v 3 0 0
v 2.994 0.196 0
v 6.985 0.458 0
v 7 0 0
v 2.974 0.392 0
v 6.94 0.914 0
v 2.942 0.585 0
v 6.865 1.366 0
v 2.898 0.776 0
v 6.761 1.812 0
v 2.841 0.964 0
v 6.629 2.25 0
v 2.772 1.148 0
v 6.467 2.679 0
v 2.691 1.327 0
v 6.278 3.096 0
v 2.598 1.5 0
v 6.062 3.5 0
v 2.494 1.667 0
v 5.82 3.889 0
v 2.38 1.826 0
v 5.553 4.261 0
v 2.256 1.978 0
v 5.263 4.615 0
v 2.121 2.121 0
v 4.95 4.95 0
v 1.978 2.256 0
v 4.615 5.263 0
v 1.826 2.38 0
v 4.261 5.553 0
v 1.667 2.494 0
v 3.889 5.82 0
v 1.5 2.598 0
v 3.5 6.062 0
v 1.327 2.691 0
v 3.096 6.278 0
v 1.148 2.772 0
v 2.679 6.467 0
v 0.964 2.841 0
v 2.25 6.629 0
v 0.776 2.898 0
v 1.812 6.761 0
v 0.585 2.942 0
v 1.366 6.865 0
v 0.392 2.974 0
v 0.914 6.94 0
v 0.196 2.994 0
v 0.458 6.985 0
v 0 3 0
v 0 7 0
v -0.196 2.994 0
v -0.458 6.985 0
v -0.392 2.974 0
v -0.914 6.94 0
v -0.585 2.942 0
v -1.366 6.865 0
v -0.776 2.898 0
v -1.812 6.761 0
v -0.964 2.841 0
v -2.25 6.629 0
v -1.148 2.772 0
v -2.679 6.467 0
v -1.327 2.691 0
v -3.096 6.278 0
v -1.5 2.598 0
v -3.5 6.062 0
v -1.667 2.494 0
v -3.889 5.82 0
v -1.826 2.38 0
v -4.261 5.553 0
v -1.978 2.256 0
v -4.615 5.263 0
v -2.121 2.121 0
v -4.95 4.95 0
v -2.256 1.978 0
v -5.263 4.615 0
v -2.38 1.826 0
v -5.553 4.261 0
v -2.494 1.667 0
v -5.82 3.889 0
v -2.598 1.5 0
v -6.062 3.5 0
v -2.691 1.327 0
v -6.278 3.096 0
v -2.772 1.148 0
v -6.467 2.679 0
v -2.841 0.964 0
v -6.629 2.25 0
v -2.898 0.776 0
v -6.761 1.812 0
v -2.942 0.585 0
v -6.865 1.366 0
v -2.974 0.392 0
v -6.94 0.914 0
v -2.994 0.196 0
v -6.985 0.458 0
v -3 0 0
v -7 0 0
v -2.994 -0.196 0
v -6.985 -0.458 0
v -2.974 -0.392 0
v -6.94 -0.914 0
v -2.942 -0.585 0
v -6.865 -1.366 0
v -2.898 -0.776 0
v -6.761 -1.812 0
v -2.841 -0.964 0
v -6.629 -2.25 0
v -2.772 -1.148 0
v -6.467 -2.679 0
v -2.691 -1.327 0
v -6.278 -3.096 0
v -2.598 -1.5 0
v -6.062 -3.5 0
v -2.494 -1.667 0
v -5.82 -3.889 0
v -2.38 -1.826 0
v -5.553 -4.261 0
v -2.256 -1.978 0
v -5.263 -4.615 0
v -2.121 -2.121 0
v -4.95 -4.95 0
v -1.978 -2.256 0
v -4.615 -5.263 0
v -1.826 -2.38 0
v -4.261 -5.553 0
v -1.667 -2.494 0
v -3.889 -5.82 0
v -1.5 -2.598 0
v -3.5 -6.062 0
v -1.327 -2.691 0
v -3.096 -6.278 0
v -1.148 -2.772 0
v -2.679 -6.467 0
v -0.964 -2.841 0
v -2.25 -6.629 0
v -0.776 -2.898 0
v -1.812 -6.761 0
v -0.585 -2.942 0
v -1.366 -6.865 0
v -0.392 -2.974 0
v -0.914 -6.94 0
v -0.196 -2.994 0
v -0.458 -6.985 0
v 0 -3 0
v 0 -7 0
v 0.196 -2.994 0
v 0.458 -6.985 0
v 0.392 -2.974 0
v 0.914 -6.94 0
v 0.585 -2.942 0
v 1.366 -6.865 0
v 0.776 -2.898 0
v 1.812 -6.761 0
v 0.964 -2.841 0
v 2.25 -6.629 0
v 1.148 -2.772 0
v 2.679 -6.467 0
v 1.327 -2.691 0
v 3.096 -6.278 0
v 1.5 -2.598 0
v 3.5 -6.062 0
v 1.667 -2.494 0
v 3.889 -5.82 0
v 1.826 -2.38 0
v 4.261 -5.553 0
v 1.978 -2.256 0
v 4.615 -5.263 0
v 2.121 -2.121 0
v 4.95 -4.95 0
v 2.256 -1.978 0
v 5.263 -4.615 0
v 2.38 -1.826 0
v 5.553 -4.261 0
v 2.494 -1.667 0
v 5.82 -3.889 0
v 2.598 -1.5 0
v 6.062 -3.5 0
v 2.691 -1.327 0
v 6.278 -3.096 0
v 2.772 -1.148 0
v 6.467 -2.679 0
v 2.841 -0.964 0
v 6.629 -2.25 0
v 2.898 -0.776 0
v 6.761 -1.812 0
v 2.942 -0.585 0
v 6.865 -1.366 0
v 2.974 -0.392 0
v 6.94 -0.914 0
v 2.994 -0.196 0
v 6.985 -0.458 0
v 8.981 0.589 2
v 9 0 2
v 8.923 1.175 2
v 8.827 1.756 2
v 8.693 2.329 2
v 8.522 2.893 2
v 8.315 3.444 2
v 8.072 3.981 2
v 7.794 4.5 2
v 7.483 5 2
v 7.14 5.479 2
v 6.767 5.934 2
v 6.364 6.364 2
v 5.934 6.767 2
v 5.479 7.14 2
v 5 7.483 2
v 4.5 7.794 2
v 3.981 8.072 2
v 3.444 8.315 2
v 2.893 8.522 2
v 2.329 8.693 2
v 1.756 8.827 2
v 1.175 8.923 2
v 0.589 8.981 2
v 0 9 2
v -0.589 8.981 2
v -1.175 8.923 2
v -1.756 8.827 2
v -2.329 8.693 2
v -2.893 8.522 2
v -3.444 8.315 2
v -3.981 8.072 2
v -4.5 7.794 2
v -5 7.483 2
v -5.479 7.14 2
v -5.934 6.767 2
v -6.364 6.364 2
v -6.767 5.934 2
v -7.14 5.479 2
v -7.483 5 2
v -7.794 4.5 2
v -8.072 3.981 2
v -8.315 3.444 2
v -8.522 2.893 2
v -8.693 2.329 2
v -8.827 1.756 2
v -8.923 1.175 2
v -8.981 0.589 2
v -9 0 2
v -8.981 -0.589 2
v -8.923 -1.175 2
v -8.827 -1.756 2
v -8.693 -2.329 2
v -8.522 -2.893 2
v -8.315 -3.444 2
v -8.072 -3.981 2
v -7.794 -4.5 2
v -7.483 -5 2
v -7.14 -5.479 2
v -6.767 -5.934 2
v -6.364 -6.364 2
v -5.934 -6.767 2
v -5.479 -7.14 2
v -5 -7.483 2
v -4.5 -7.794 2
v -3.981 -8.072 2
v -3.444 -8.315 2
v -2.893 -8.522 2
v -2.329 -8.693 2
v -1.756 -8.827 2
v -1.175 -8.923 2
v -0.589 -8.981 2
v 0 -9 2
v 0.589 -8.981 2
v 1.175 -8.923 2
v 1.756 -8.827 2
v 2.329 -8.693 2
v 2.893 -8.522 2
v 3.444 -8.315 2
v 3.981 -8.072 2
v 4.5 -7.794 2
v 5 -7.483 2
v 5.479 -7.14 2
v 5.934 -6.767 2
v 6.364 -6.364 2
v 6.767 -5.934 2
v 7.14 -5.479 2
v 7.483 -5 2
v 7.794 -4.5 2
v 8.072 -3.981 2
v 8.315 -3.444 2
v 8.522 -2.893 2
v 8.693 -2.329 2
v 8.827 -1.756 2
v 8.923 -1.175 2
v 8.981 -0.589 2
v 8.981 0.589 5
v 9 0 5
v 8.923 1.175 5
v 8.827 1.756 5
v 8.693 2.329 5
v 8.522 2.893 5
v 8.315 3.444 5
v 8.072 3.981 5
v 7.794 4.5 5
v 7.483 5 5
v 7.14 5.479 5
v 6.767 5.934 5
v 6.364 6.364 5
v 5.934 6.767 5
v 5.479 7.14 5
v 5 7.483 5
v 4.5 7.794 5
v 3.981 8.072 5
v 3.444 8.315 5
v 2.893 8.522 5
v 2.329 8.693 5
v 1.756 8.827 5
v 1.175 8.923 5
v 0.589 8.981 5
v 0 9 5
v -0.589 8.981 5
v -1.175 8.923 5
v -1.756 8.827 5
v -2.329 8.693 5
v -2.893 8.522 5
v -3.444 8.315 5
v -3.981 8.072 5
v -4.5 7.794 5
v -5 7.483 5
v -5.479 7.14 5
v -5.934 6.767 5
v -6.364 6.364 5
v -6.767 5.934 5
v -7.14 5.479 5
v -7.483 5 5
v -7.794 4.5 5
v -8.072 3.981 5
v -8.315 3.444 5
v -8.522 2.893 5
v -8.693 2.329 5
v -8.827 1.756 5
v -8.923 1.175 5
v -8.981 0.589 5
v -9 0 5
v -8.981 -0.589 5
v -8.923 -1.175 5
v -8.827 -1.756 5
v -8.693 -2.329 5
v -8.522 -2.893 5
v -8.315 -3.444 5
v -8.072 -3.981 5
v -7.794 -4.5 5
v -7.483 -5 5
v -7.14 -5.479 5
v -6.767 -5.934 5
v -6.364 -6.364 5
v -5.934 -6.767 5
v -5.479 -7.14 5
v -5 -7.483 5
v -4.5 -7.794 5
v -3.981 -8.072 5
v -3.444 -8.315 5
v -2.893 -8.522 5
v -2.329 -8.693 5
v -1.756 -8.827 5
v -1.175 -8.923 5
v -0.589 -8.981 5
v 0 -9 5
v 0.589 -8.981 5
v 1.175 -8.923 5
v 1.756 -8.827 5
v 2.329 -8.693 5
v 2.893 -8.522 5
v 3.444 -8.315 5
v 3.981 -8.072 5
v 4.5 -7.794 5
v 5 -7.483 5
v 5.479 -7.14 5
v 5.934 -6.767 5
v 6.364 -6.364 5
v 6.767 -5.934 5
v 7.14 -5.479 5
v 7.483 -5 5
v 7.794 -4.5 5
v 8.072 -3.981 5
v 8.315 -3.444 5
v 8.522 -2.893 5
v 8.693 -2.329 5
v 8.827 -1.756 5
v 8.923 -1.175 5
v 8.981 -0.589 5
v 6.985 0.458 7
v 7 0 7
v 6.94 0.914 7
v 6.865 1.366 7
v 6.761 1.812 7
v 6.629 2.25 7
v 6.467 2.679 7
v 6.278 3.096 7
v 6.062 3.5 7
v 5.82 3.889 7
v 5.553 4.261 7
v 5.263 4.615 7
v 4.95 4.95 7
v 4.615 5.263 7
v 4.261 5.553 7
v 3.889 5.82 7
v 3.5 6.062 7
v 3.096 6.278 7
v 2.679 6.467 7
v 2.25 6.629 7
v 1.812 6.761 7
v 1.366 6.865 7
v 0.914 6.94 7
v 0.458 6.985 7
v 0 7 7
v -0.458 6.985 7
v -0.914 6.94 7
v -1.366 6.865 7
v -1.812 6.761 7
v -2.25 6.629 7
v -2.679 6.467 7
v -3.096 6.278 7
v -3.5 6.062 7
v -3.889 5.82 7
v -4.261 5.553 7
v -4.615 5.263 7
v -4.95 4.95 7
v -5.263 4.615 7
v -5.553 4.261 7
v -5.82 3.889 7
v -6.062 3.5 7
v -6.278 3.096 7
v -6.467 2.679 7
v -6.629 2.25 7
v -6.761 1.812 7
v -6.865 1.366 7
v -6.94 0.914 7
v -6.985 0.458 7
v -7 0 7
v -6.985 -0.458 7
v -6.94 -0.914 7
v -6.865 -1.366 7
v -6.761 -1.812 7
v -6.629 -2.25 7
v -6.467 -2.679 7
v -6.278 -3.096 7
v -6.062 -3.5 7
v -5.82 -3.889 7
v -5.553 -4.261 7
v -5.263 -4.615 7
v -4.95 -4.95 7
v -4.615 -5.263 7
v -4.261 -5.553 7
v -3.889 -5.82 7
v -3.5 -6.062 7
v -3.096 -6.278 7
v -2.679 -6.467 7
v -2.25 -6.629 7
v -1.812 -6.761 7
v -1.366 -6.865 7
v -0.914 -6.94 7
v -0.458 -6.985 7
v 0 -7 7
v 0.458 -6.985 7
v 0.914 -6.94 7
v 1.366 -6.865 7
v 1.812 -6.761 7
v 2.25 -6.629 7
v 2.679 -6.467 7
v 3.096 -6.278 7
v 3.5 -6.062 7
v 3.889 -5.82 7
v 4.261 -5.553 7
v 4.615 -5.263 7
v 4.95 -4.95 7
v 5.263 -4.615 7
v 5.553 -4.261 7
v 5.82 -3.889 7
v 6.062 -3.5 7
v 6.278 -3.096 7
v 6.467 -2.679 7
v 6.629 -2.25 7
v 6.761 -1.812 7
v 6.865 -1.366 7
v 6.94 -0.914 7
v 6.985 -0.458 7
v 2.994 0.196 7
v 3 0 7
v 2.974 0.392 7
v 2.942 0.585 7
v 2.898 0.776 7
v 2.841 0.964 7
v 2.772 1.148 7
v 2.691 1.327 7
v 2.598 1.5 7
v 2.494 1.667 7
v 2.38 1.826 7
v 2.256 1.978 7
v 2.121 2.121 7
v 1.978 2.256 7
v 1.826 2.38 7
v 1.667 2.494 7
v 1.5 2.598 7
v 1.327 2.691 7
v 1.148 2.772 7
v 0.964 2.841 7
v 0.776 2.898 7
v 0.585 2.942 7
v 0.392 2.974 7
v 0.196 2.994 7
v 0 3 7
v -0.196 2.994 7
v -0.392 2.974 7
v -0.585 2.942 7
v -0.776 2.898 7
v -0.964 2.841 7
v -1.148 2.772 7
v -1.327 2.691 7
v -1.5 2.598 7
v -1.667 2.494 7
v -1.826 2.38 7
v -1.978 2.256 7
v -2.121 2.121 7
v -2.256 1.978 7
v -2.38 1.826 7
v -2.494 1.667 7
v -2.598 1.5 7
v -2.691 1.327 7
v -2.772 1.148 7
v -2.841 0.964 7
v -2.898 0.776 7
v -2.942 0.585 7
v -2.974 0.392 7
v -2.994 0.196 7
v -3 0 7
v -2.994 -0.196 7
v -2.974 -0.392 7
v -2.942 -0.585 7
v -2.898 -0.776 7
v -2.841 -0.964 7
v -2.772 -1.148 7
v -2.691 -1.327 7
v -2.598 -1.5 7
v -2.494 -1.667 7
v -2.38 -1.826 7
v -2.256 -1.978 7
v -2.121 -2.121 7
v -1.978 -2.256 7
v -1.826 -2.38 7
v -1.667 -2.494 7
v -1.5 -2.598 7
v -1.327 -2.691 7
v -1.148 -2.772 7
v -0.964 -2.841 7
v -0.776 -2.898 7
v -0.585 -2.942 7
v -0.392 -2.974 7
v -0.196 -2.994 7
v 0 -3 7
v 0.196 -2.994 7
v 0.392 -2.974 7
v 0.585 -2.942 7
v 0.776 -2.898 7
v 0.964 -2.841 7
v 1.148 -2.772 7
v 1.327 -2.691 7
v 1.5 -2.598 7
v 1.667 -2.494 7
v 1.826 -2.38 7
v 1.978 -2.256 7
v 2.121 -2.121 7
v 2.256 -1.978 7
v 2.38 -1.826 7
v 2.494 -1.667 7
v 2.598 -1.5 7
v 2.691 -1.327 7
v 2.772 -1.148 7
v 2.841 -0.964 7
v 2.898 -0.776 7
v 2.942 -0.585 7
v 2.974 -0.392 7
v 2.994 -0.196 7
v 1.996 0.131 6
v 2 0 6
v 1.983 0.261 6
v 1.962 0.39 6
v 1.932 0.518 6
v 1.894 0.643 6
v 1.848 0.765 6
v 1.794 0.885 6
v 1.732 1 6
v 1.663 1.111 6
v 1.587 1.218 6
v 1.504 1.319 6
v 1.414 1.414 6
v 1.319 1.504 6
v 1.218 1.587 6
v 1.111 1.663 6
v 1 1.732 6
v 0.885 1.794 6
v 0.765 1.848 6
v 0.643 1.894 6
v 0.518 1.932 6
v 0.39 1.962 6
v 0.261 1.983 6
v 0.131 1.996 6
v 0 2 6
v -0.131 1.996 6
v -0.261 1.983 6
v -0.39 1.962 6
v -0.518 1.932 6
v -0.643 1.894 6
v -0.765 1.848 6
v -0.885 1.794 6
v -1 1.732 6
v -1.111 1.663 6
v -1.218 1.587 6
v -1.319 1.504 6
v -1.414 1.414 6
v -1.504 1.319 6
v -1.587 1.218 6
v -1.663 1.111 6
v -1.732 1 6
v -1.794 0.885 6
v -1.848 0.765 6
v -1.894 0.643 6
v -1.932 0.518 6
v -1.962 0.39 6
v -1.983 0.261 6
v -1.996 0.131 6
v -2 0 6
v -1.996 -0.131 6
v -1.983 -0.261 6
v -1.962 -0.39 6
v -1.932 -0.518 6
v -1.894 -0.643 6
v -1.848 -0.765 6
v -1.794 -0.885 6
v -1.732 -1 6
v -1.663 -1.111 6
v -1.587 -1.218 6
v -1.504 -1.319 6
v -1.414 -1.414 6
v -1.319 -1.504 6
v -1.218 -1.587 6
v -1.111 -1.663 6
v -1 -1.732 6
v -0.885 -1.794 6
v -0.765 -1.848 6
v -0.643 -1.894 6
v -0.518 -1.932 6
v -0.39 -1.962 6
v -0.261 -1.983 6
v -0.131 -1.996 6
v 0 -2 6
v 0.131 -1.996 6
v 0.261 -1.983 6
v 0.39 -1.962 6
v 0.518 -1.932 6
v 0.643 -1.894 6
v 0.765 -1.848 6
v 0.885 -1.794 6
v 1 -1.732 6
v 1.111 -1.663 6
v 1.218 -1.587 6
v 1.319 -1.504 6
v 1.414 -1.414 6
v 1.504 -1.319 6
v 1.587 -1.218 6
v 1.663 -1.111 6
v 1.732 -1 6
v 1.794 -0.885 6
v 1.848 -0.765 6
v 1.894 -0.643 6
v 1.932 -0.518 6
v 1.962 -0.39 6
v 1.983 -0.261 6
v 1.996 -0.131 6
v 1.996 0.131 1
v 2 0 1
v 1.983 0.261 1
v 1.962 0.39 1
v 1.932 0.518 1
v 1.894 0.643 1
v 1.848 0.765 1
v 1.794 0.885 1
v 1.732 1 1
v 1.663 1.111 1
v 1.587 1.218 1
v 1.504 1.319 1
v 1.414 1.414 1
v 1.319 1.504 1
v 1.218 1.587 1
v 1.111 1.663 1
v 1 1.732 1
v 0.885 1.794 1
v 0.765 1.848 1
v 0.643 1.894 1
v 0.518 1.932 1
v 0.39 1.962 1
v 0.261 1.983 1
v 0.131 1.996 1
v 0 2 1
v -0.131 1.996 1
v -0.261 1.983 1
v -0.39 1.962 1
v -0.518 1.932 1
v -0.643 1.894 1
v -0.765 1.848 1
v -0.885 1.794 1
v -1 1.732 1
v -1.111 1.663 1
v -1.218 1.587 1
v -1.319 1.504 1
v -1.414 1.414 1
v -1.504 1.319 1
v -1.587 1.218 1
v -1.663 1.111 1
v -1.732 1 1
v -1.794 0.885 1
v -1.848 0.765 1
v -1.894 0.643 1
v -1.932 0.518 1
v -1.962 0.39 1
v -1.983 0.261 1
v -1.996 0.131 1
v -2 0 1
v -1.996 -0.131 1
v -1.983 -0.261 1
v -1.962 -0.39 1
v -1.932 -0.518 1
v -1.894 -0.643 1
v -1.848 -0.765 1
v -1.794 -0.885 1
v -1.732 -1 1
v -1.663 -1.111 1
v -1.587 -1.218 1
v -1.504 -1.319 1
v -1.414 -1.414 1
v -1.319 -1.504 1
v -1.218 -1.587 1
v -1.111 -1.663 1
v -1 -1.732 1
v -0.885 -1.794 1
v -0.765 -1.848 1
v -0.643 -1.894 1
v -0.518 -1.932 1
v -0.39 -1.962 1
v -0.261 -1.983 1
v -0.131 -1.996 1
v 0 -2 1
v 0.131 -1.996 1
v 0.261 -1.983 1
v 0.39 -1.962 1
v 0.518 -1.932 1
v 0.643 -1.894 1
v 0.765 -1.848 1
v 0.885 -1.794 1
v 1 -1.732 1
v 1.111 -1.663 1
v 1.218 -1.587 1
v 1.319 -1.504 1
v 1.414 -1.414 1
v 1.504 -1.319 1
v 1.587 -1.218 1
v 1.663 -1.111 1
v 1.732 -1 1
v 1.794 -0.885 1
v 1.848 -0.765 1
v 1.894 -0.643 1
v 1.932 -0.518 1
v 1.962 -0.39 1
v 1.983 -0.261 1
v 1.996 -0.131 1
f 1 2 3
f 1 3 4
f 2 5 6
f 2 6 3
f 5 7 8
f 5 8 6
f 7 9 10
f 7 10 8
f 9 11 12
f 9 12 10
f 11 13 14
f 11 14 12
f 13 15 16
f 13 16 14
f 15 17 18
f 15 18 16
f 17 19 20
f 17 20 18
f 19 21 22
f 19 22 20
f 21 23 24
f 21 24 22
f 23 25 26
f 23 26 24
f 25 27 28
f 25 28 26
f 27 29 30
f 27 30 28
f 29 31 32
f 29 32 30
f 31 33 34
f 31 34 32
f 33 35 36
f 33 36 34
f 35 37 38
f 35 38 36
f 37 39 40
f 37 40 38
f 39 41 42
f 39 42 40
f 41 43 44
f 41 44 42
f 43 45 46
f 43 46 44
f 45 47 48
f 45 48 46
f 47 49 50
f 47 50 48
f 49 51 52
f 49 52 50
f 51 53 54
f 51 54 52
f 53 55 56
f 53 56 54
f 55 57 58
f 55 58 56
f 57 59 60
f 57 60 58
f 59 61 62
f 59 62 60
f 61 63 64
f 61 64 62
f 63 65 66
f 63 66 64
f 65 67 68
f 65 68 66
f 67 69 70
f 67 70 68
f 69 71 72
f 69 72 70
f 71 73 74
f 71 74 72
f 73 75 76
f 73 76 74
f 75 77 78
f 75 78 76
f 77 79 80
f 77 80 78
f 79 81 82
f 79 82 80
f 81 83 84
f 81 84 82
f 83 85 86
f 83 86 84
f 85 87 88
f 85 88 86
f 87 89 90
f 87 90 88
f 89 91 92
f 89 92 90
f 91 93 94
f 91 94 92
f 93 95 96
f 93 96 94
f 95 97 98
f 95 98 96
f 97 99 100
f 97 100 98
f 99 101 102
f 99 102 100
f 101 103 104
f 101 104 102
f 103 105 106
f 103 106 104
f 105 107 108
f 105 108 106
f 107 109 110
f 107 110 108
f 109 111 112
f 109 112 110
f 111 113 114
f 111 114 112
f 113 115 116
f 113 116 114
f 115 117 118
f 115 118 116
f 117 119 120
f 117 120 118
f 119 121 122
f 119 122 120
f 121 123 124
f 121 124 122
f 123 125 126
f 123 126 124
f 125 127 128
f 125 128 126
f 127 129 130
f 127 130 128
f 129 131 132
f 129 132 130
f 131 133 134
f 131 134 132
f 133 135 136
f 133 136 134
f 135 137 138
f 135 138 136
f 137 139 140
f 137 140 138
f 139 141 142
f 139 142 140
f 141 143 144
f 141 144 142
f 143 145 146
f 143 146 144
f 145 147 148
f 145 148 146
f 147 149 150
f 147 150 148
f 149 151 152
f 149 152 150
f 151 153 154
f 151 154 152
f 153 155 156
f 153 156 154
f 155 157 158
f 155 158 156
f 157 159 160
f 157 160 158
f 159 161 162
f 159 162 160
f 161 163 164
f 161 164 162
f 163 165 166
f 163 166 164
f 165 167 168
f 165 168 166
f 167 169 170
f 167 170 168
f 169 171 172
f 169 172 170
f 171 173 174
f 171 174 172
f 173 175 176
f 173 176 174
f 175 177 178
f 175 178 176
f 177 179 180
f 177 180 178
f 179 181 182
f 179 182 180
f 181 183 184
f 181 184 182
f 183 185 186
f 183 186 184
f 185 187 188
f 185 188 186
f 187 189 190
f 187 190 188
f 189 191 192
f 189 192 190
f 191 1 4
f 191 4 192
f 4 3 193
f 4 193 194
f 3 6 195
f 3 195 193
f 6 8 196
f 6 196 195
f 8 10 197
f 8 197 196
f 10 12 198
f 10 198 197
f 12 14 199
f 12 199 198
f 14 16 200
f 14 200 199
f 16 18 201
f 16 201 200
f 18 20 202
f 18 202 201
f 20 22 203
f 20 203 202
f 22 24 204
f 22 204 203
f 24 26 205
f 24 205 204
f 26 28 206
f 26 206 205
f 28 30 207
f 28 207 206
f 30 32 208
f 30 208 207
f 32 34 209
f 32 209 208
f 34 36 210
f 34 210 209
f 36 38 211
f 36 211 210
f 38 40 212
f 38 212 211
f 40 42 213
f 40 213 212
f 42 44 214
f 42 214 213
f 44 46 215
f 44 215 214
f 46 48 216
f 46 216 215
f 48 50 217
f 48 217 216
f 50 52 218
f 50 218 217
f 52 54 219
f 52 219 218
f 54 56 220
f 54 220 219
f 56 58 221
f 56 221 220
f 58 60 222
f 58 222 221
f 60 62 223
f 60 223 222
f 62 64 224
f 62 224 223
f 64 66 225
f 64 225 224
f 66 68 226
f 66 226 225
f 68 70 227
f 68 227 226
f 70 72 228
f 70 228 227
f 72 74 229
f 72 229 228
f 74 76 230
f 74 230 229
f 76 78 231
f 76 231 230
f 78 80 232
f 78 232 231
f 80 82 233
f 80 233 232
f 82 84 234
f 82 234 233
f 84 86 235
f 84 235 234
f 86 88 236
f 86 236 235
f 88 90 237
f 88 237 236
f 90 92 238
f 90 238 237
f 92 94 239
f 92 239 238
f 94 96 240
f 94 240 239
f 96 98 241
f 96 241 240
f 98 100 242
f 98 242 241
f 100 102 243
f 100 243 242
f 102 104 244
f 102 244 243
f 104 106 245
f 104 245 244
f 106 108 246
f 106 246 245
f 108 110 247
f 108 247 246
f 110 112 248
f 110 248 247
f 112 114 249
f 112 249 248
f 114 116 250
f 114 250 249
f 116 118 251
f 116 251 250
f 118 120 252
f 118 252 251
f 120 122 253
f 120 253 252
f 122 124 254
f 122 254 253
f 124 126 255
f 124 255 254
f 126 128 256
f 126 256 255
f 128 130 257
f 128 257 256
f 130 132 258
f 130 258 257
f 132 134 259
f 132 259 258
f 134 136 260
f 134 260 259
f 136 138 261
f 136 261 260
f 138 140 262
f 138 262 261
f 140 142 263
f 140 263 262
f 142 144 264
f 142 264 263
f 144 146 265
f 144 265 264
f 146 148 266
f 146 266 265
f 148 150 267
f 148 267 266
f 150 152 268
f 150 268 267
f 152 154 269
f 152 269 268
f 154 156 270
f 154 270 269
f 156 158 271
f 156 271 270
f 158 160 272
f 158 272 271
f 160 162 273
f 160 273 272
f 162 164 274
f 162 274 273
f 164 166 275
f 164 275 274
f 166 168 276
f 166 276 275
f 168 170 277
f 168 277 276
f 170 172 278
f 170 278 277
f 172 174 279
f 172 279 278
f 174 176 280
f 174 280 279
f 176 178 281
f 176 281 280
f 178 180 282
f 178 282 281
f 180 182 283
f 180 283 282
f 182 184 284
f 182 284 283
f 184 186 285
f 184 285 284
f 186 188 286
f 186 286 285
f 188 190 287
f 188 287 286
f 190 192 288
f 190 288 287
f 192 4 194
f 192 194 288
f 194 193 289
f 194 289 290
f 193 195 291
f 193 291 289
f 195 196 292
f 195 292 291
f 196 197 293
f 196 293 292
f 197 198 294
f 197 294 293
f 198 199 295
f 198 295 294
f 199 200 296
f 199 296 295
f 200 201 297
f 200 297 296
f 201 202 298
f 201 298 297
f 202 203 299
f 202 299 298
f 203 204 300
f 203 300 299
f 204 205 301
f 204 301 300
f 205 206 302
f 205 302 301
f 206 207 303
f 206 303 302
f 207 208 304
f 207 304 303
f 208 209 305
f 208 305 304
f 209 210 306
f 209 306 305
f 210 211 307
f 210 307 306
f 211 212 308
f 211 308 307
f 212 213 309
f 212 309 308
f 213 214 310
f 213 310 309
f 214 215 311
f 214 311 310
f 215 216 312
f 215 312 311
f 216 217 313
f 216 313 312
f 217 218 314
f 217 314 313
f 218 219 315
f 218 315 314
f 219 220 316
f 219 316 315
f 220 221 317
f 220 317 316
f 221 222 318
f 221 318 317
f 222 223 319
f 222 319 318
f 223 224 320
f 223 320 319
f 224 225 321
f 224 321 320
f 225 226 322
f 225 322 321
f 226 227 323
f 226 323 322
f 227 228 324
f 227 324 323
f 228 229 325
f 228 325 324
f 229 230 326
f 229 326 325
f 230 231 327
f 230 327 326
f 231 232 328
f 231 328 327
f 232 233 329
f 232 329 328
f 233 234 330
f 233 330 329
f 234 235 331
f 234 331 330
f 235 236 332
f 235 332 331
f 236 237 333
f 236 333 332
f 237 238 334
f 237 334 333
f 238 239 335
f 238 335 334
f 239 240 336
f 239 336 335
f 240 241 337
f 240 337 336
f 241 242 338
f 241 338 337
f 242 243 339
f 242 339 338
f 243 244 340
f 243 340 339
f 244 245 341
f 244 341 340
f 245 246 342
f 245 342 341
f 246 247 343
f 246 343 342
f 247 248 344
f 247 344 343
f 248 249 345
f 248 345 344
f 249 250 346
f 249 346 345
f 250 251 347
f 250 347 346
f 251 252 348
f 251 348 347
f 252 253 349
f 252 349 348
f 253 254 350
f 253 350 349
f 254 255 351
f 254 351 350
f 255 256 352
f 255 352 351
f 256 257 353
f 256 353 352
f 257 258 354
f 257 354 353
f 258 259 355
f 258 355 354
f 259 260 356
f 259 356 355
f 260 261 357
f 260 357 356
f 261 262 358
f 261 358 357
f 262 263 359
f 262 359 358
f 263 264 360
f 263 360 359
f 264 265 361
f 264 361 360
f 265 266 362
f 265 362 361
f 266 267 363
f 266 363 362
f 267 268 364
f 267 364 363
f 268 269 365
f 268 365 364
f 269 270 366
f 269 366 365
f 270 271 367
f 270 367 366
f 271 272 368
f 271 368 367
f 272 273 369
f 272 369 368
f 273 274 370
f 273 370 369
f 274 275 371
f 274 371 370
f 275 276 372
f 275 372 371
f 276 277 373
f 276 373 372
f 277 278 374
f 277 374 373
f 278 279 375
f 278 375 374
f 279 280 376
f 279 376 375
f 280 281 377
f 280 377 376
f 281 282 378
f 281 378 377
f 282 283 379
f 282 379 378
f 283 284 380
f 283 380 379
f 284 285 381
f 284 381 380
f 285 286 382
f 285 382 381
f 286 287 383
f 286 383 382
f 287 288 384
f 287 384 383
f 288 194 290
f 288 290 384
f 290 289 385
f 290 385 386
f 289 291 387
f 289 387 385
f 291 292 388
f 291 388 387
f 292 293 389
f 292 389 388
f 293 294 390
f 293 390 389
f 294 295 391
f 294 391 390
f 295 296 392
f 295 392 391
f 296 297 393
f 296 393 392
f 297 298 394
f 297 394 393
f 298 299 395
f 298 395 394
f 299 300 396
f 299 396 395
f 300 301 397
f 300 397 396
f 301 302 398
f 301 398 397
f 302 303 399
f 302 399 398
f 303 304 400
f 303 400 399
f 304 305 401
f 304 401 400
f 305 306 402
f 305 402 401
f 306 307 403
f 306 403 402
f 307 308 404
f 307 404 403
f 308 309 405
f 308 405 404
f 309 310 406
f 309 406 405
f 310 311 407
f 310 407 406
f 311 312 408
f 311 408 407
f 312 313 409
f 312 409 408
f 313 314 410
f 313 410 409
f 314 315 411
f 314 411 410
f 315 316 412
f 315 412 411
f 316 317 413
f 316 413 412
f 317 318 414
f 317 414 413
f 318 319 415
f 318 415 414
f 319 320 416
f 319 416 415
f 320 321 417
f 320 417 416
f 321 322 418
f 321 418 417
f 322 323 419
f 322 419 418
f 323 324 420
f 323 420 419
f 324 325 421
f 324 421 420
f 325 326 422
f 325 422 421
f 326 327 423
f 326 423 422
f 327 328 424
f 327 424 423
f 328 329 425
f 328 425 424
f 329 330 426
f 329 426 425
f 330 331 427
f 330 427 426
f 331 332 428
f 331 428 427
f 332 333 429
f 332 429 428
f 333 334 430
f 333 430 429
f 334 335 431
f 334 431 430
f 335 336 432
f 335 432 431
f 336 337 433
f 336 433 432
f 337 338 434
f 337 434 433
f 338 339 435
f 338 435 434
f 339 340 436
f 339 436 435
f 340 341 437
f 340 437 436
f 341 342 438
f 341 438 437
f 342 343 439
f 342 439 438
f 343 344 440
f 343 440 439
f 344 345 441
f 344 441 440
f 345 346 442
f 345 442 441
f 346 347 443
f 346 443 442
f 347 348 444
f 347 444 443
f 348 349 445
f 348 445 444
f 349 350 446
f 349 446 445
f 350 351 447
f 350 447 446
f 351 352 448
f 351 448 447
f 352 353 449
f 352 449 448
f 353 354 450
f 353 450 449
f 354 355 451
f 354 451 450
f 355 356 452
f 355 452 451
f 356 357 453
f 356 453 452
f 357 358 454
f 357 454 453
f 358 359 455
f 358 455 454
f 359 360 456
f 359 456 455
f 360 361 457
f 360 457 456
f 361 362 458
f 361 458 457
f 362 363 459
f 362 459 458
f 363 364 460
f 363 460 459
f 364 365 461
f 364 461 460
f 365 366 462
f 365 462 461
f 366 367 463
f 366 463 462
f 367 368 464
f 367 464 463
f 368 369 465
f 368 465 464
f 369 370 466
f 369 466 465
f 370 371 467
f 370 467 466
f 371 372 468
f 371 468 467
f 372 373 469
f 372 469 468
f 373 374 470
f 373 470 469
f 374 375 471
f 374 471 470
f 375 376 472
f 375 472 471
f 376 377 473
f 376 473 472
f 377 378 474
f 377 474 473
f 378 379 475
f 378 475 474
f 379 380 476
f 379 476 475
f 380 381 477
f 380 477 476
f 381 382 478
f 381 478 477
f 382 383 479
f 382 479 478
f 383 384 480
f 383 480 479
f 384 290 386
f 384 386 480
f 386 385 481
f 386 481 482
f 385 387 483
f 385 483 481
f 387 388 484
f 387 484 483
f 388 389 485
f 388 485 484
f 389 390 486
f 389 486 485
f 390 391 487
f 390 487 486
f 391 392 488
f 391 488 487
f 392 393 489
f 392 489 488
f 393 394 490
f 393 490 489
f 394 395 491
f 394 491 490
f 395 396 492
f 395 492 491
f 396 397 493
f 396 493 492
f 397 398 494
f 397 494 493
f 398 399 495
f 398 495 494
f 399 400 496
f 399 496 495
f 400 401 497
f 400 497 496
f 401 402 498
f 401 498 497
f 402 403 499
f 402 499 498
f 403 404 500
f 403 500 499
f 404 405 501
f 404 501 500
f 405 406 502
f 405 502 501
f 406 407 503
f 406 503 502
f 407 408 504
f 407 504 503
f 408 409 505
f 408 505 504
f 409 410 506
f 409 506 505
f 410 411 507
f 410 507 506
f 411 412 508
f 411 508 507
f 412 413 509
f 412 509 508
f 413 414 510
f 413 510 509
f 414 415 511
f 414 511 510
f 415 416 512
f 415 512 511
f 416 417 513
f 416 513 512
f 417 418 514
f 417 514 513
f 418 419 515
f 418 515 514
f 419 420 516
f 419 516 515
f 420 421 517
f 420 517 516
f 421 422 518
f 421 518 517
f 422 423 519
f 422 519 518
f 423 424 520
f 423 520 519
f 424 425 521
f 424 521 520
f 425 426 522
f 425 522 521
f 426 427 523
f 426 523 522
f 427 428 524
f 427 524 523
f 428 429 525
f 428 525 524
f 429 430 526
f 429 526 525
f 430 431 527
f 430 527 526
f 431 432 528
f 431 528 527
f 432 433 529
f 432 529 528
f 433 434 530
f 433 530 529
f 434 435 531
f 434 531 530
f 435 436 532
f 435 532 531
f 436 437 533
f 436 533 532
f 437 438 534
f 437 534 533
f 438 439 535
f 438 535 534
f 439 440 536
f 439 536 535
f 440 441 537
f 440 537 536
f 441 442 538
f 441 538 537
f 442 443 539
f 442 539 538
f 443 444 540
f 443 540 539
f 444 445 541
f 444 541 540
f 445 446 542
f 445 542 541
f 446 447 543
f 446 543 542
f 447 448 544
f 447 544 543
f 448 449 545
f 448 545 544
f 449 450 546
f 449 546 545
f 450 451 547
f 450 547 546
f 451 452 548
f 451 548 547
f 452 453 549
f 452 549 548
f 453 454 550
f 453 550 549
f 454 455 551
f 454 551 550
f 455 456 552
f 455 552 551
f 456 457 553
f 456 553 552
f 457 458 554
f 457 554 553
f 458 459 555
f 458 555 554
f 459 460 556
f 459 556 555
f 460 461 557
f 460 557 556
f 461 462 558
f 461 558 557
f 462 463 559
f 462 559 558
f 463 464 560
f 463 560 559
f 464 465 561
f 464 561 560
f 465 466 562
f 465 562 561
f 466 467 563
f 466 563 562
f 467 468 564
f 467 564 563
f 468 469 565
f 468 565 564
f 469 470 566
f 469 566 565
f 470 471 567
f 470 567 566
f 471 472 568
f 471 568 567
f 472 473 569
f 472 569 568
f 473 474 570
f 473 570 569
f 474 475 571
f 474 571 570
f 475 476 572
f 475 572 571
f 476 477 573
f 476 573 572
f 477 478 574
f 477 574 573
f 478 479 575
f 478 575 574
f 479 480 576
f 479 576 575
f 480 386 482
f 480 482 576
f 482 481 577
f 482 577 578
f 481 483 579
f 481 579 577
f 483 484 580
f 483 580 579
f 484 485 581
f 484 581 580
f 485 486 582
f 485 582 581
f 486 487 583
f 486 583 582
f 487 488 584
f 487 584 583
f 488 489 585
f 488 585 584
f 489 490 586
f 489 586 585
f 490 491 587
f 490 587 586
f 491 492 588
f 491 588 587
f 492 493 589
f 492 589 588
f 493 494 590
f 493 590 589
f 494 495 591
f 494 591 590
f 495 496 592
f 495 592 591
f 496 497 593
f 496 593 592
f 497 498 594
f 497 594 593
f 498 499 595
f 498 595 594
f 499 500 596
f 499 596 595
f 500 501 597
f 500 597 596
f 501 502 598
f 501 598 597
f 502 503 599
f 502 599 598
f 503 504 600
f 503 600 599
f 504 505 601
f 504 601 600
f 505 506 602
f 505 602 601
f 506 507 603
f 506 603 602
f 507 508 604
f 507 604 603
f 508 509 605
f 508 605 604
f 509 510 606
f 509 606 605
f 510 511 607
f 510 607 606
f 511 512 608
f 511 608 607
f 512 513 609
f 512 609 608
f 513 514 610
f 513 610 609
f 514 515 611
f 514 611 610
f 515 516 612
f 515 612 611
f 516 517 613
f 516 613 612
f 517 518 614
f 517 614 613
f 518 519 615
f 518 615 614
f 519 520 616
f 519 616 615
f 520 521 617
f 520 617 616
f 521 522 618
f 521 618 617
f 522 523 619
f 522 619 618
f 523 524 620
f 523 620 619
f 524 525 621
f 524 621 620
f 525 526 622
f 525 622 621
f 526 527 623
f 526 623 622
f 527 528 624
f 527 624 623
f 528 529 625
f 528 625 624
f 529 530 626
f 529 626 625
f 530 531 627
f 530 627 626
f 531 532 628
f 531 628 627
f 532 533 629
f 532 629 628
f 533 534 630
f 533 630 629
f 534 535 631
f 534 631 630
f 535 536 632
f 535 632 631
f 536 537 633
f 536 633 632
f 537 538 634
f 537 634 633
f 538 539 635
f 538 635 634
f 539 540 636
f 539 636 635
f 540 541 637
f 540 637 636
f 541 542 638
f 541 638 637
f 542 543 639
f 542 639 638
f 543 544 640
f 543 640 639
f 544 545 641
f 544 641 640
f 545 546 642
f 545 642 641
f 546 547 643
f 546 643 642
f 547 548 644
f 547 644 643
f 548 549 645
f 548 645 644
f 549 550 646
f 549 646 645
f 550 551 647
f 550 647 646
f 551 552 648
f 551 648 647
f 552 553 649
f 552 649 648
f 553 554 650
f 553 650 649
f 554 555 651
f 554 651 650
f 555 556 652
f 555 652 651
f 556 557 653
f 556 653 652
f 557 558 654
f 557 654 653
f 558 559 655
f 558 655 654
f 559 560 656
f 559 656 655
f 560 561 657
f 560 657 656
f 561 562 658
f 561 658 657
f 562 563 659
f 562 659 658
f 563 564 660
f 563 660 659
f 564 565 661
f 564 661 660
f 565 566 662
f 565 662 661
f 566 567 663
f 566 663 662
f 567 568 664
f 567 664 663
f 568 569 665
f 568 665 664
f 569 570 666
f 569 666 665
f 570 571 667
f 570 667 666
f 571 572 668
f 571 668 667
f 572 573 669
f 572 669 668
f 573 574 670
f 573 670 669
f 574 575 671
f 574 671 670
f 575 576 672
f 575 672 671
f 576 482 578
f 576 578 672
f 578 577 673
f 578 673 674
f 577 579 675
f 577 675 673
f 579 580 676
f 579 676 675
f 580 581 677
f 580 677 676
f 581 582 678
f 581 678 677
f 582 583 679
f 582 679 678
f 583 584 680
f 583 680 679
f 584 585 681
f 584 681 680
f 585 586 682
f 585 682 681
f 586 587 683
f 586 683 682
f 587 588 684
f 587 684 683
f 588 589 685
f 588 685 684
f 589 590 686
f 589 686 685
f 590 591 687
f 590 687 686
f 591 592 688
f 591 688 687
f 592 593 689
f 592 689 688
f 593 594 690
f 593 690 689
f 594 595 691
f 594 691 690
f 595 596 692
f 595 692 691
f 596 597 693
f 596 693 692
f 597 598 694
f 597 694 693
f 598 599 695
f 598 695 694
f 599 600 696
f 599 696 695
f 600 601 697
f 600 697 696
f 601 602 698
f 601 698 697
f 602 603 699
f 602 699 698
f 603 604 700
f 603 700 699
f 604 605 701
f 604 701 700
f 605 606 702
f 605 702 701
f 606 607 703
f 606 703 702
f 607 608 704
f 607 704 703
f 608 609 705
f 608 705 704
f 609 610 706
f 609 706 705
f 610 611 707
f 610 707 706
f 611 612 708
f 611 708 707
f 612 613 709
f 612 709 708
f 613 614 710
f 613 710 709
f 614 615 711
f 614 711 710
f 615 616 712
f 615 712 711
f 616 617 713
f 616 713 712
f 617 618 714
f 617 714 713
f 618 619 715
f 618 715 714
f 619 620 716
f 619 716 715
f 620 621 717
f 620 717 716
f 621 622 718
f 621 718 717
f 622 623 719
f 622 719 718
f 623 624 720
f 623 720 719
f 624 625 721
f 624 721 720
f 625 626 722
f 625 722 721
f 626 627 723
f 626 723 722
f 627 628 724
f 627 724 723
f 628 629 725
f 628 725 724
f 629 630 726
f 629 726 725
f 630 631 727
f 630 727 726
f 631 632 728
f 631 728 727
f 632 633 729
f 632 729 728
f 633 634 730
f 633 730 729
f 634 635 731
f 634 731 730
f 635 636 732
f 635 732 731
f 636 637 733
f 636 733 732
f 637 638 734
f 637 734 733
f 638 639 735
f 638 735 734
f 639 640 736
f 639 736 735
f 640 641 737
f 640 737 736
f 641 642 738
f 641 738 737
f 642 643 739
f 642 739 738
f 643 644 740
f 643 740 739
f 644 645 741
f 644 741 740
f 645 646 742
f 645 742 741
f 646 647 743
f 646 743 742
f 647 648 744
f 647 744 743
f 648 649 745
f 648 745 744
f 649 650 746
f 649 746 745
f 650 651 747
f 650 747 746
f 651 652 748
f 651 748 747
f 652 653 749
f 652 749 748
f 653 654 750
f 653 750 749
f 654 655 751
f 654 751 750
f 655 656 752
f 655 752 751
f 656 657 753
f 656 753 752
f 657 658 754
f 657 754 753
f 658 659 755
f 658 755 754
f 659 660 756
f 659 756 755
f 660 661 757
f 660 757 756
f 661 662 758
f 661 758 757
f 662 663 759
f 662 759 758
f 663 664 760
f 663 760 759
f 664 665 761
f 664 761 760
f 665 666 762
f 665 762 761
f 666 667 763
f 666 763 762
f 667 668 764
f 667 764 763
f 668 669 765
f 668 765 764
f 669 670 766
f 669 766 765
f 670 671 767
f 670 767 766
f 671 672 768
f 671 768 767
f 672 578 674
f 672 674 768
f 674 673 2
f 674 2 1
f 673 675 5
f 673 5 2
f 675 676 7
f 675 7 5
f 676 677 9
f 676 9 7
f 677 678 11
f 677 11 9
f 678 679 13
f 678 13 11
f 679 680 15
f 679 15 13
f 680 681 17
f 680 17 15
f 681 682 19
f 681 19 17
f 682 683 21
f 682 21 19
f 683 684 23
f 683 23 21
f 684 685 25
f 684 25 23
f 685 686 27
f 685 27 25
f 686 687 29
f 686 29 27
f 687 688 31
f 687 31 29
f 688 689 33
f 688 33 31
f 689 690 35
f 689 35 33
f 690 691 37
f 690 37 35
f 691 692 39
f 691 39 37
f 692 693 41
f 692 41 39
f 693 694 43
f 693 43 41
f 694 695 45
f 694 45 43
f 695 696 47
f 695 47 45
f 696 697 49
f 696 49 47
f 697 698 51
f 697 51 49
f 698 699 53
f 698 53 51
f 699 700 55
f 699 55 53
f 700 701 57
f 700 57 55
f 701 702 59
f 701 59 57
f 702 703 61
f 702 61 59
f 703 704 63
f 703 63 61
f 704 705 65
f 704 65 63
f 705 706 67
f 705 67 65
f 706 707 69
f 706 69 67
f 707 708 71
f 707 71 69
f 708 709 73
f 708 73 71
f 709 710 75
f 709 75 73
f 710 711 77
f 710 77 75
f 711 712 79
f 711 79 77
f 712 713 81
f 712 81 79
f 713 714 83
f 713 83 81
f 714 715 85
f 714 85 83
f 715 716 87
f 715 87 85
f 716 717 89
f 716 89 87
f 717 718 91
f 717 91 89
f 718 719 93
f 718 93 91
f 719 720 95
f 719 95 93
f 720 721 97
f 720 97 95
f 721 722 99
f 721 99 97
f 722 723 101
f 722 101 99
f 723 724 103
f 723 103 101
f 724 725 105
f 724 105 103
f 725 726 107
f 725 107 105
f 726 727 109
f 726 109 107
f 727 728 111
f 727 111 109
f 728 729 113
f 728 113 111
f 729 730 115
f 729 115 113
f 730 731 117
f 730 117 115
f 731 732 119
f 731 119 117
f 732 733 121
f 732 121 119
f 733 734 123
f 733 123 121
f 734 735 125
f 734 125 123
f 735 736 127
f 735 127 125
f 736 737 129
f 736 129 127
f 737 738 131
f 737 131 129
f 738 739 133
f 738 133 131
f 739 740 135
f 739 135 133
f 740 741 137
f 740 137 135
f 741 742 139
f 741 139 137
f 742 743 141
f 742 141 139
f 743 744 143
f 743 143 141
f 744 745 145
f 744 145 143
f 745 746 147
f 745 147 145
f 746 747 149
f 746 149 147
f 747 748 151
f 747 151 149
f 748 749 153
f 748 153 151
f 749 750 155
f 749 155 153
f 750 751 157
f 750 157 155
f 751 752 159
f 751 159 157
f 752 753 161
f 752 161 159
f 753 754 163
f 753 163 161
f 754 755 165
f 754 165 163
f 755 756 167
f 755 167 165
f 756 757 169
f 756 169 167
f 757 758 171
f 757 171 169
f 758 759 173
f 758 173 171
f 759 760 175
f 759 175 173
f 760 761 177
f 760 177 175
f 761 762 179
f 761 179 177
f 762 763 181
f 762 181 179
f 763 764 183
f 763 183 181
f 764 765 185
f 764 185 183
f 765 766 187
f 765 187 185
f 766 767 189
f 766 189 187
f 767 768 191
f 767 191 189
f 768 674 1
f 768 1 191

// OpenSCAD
// Original MechIntel educational model. CC0-1.0. Units: mm.
// Not a standardized or load-rated component.
$fn=96;
// Section points: [radius, height], mm. Edit to change the profile.
section=[[3, 0], [7, 0], [9, 2], [9, 5], [7, 7], [3, 7], [2, 6], [2, 1]];
rotate_extrude($fn=96) polygon(points=section);
